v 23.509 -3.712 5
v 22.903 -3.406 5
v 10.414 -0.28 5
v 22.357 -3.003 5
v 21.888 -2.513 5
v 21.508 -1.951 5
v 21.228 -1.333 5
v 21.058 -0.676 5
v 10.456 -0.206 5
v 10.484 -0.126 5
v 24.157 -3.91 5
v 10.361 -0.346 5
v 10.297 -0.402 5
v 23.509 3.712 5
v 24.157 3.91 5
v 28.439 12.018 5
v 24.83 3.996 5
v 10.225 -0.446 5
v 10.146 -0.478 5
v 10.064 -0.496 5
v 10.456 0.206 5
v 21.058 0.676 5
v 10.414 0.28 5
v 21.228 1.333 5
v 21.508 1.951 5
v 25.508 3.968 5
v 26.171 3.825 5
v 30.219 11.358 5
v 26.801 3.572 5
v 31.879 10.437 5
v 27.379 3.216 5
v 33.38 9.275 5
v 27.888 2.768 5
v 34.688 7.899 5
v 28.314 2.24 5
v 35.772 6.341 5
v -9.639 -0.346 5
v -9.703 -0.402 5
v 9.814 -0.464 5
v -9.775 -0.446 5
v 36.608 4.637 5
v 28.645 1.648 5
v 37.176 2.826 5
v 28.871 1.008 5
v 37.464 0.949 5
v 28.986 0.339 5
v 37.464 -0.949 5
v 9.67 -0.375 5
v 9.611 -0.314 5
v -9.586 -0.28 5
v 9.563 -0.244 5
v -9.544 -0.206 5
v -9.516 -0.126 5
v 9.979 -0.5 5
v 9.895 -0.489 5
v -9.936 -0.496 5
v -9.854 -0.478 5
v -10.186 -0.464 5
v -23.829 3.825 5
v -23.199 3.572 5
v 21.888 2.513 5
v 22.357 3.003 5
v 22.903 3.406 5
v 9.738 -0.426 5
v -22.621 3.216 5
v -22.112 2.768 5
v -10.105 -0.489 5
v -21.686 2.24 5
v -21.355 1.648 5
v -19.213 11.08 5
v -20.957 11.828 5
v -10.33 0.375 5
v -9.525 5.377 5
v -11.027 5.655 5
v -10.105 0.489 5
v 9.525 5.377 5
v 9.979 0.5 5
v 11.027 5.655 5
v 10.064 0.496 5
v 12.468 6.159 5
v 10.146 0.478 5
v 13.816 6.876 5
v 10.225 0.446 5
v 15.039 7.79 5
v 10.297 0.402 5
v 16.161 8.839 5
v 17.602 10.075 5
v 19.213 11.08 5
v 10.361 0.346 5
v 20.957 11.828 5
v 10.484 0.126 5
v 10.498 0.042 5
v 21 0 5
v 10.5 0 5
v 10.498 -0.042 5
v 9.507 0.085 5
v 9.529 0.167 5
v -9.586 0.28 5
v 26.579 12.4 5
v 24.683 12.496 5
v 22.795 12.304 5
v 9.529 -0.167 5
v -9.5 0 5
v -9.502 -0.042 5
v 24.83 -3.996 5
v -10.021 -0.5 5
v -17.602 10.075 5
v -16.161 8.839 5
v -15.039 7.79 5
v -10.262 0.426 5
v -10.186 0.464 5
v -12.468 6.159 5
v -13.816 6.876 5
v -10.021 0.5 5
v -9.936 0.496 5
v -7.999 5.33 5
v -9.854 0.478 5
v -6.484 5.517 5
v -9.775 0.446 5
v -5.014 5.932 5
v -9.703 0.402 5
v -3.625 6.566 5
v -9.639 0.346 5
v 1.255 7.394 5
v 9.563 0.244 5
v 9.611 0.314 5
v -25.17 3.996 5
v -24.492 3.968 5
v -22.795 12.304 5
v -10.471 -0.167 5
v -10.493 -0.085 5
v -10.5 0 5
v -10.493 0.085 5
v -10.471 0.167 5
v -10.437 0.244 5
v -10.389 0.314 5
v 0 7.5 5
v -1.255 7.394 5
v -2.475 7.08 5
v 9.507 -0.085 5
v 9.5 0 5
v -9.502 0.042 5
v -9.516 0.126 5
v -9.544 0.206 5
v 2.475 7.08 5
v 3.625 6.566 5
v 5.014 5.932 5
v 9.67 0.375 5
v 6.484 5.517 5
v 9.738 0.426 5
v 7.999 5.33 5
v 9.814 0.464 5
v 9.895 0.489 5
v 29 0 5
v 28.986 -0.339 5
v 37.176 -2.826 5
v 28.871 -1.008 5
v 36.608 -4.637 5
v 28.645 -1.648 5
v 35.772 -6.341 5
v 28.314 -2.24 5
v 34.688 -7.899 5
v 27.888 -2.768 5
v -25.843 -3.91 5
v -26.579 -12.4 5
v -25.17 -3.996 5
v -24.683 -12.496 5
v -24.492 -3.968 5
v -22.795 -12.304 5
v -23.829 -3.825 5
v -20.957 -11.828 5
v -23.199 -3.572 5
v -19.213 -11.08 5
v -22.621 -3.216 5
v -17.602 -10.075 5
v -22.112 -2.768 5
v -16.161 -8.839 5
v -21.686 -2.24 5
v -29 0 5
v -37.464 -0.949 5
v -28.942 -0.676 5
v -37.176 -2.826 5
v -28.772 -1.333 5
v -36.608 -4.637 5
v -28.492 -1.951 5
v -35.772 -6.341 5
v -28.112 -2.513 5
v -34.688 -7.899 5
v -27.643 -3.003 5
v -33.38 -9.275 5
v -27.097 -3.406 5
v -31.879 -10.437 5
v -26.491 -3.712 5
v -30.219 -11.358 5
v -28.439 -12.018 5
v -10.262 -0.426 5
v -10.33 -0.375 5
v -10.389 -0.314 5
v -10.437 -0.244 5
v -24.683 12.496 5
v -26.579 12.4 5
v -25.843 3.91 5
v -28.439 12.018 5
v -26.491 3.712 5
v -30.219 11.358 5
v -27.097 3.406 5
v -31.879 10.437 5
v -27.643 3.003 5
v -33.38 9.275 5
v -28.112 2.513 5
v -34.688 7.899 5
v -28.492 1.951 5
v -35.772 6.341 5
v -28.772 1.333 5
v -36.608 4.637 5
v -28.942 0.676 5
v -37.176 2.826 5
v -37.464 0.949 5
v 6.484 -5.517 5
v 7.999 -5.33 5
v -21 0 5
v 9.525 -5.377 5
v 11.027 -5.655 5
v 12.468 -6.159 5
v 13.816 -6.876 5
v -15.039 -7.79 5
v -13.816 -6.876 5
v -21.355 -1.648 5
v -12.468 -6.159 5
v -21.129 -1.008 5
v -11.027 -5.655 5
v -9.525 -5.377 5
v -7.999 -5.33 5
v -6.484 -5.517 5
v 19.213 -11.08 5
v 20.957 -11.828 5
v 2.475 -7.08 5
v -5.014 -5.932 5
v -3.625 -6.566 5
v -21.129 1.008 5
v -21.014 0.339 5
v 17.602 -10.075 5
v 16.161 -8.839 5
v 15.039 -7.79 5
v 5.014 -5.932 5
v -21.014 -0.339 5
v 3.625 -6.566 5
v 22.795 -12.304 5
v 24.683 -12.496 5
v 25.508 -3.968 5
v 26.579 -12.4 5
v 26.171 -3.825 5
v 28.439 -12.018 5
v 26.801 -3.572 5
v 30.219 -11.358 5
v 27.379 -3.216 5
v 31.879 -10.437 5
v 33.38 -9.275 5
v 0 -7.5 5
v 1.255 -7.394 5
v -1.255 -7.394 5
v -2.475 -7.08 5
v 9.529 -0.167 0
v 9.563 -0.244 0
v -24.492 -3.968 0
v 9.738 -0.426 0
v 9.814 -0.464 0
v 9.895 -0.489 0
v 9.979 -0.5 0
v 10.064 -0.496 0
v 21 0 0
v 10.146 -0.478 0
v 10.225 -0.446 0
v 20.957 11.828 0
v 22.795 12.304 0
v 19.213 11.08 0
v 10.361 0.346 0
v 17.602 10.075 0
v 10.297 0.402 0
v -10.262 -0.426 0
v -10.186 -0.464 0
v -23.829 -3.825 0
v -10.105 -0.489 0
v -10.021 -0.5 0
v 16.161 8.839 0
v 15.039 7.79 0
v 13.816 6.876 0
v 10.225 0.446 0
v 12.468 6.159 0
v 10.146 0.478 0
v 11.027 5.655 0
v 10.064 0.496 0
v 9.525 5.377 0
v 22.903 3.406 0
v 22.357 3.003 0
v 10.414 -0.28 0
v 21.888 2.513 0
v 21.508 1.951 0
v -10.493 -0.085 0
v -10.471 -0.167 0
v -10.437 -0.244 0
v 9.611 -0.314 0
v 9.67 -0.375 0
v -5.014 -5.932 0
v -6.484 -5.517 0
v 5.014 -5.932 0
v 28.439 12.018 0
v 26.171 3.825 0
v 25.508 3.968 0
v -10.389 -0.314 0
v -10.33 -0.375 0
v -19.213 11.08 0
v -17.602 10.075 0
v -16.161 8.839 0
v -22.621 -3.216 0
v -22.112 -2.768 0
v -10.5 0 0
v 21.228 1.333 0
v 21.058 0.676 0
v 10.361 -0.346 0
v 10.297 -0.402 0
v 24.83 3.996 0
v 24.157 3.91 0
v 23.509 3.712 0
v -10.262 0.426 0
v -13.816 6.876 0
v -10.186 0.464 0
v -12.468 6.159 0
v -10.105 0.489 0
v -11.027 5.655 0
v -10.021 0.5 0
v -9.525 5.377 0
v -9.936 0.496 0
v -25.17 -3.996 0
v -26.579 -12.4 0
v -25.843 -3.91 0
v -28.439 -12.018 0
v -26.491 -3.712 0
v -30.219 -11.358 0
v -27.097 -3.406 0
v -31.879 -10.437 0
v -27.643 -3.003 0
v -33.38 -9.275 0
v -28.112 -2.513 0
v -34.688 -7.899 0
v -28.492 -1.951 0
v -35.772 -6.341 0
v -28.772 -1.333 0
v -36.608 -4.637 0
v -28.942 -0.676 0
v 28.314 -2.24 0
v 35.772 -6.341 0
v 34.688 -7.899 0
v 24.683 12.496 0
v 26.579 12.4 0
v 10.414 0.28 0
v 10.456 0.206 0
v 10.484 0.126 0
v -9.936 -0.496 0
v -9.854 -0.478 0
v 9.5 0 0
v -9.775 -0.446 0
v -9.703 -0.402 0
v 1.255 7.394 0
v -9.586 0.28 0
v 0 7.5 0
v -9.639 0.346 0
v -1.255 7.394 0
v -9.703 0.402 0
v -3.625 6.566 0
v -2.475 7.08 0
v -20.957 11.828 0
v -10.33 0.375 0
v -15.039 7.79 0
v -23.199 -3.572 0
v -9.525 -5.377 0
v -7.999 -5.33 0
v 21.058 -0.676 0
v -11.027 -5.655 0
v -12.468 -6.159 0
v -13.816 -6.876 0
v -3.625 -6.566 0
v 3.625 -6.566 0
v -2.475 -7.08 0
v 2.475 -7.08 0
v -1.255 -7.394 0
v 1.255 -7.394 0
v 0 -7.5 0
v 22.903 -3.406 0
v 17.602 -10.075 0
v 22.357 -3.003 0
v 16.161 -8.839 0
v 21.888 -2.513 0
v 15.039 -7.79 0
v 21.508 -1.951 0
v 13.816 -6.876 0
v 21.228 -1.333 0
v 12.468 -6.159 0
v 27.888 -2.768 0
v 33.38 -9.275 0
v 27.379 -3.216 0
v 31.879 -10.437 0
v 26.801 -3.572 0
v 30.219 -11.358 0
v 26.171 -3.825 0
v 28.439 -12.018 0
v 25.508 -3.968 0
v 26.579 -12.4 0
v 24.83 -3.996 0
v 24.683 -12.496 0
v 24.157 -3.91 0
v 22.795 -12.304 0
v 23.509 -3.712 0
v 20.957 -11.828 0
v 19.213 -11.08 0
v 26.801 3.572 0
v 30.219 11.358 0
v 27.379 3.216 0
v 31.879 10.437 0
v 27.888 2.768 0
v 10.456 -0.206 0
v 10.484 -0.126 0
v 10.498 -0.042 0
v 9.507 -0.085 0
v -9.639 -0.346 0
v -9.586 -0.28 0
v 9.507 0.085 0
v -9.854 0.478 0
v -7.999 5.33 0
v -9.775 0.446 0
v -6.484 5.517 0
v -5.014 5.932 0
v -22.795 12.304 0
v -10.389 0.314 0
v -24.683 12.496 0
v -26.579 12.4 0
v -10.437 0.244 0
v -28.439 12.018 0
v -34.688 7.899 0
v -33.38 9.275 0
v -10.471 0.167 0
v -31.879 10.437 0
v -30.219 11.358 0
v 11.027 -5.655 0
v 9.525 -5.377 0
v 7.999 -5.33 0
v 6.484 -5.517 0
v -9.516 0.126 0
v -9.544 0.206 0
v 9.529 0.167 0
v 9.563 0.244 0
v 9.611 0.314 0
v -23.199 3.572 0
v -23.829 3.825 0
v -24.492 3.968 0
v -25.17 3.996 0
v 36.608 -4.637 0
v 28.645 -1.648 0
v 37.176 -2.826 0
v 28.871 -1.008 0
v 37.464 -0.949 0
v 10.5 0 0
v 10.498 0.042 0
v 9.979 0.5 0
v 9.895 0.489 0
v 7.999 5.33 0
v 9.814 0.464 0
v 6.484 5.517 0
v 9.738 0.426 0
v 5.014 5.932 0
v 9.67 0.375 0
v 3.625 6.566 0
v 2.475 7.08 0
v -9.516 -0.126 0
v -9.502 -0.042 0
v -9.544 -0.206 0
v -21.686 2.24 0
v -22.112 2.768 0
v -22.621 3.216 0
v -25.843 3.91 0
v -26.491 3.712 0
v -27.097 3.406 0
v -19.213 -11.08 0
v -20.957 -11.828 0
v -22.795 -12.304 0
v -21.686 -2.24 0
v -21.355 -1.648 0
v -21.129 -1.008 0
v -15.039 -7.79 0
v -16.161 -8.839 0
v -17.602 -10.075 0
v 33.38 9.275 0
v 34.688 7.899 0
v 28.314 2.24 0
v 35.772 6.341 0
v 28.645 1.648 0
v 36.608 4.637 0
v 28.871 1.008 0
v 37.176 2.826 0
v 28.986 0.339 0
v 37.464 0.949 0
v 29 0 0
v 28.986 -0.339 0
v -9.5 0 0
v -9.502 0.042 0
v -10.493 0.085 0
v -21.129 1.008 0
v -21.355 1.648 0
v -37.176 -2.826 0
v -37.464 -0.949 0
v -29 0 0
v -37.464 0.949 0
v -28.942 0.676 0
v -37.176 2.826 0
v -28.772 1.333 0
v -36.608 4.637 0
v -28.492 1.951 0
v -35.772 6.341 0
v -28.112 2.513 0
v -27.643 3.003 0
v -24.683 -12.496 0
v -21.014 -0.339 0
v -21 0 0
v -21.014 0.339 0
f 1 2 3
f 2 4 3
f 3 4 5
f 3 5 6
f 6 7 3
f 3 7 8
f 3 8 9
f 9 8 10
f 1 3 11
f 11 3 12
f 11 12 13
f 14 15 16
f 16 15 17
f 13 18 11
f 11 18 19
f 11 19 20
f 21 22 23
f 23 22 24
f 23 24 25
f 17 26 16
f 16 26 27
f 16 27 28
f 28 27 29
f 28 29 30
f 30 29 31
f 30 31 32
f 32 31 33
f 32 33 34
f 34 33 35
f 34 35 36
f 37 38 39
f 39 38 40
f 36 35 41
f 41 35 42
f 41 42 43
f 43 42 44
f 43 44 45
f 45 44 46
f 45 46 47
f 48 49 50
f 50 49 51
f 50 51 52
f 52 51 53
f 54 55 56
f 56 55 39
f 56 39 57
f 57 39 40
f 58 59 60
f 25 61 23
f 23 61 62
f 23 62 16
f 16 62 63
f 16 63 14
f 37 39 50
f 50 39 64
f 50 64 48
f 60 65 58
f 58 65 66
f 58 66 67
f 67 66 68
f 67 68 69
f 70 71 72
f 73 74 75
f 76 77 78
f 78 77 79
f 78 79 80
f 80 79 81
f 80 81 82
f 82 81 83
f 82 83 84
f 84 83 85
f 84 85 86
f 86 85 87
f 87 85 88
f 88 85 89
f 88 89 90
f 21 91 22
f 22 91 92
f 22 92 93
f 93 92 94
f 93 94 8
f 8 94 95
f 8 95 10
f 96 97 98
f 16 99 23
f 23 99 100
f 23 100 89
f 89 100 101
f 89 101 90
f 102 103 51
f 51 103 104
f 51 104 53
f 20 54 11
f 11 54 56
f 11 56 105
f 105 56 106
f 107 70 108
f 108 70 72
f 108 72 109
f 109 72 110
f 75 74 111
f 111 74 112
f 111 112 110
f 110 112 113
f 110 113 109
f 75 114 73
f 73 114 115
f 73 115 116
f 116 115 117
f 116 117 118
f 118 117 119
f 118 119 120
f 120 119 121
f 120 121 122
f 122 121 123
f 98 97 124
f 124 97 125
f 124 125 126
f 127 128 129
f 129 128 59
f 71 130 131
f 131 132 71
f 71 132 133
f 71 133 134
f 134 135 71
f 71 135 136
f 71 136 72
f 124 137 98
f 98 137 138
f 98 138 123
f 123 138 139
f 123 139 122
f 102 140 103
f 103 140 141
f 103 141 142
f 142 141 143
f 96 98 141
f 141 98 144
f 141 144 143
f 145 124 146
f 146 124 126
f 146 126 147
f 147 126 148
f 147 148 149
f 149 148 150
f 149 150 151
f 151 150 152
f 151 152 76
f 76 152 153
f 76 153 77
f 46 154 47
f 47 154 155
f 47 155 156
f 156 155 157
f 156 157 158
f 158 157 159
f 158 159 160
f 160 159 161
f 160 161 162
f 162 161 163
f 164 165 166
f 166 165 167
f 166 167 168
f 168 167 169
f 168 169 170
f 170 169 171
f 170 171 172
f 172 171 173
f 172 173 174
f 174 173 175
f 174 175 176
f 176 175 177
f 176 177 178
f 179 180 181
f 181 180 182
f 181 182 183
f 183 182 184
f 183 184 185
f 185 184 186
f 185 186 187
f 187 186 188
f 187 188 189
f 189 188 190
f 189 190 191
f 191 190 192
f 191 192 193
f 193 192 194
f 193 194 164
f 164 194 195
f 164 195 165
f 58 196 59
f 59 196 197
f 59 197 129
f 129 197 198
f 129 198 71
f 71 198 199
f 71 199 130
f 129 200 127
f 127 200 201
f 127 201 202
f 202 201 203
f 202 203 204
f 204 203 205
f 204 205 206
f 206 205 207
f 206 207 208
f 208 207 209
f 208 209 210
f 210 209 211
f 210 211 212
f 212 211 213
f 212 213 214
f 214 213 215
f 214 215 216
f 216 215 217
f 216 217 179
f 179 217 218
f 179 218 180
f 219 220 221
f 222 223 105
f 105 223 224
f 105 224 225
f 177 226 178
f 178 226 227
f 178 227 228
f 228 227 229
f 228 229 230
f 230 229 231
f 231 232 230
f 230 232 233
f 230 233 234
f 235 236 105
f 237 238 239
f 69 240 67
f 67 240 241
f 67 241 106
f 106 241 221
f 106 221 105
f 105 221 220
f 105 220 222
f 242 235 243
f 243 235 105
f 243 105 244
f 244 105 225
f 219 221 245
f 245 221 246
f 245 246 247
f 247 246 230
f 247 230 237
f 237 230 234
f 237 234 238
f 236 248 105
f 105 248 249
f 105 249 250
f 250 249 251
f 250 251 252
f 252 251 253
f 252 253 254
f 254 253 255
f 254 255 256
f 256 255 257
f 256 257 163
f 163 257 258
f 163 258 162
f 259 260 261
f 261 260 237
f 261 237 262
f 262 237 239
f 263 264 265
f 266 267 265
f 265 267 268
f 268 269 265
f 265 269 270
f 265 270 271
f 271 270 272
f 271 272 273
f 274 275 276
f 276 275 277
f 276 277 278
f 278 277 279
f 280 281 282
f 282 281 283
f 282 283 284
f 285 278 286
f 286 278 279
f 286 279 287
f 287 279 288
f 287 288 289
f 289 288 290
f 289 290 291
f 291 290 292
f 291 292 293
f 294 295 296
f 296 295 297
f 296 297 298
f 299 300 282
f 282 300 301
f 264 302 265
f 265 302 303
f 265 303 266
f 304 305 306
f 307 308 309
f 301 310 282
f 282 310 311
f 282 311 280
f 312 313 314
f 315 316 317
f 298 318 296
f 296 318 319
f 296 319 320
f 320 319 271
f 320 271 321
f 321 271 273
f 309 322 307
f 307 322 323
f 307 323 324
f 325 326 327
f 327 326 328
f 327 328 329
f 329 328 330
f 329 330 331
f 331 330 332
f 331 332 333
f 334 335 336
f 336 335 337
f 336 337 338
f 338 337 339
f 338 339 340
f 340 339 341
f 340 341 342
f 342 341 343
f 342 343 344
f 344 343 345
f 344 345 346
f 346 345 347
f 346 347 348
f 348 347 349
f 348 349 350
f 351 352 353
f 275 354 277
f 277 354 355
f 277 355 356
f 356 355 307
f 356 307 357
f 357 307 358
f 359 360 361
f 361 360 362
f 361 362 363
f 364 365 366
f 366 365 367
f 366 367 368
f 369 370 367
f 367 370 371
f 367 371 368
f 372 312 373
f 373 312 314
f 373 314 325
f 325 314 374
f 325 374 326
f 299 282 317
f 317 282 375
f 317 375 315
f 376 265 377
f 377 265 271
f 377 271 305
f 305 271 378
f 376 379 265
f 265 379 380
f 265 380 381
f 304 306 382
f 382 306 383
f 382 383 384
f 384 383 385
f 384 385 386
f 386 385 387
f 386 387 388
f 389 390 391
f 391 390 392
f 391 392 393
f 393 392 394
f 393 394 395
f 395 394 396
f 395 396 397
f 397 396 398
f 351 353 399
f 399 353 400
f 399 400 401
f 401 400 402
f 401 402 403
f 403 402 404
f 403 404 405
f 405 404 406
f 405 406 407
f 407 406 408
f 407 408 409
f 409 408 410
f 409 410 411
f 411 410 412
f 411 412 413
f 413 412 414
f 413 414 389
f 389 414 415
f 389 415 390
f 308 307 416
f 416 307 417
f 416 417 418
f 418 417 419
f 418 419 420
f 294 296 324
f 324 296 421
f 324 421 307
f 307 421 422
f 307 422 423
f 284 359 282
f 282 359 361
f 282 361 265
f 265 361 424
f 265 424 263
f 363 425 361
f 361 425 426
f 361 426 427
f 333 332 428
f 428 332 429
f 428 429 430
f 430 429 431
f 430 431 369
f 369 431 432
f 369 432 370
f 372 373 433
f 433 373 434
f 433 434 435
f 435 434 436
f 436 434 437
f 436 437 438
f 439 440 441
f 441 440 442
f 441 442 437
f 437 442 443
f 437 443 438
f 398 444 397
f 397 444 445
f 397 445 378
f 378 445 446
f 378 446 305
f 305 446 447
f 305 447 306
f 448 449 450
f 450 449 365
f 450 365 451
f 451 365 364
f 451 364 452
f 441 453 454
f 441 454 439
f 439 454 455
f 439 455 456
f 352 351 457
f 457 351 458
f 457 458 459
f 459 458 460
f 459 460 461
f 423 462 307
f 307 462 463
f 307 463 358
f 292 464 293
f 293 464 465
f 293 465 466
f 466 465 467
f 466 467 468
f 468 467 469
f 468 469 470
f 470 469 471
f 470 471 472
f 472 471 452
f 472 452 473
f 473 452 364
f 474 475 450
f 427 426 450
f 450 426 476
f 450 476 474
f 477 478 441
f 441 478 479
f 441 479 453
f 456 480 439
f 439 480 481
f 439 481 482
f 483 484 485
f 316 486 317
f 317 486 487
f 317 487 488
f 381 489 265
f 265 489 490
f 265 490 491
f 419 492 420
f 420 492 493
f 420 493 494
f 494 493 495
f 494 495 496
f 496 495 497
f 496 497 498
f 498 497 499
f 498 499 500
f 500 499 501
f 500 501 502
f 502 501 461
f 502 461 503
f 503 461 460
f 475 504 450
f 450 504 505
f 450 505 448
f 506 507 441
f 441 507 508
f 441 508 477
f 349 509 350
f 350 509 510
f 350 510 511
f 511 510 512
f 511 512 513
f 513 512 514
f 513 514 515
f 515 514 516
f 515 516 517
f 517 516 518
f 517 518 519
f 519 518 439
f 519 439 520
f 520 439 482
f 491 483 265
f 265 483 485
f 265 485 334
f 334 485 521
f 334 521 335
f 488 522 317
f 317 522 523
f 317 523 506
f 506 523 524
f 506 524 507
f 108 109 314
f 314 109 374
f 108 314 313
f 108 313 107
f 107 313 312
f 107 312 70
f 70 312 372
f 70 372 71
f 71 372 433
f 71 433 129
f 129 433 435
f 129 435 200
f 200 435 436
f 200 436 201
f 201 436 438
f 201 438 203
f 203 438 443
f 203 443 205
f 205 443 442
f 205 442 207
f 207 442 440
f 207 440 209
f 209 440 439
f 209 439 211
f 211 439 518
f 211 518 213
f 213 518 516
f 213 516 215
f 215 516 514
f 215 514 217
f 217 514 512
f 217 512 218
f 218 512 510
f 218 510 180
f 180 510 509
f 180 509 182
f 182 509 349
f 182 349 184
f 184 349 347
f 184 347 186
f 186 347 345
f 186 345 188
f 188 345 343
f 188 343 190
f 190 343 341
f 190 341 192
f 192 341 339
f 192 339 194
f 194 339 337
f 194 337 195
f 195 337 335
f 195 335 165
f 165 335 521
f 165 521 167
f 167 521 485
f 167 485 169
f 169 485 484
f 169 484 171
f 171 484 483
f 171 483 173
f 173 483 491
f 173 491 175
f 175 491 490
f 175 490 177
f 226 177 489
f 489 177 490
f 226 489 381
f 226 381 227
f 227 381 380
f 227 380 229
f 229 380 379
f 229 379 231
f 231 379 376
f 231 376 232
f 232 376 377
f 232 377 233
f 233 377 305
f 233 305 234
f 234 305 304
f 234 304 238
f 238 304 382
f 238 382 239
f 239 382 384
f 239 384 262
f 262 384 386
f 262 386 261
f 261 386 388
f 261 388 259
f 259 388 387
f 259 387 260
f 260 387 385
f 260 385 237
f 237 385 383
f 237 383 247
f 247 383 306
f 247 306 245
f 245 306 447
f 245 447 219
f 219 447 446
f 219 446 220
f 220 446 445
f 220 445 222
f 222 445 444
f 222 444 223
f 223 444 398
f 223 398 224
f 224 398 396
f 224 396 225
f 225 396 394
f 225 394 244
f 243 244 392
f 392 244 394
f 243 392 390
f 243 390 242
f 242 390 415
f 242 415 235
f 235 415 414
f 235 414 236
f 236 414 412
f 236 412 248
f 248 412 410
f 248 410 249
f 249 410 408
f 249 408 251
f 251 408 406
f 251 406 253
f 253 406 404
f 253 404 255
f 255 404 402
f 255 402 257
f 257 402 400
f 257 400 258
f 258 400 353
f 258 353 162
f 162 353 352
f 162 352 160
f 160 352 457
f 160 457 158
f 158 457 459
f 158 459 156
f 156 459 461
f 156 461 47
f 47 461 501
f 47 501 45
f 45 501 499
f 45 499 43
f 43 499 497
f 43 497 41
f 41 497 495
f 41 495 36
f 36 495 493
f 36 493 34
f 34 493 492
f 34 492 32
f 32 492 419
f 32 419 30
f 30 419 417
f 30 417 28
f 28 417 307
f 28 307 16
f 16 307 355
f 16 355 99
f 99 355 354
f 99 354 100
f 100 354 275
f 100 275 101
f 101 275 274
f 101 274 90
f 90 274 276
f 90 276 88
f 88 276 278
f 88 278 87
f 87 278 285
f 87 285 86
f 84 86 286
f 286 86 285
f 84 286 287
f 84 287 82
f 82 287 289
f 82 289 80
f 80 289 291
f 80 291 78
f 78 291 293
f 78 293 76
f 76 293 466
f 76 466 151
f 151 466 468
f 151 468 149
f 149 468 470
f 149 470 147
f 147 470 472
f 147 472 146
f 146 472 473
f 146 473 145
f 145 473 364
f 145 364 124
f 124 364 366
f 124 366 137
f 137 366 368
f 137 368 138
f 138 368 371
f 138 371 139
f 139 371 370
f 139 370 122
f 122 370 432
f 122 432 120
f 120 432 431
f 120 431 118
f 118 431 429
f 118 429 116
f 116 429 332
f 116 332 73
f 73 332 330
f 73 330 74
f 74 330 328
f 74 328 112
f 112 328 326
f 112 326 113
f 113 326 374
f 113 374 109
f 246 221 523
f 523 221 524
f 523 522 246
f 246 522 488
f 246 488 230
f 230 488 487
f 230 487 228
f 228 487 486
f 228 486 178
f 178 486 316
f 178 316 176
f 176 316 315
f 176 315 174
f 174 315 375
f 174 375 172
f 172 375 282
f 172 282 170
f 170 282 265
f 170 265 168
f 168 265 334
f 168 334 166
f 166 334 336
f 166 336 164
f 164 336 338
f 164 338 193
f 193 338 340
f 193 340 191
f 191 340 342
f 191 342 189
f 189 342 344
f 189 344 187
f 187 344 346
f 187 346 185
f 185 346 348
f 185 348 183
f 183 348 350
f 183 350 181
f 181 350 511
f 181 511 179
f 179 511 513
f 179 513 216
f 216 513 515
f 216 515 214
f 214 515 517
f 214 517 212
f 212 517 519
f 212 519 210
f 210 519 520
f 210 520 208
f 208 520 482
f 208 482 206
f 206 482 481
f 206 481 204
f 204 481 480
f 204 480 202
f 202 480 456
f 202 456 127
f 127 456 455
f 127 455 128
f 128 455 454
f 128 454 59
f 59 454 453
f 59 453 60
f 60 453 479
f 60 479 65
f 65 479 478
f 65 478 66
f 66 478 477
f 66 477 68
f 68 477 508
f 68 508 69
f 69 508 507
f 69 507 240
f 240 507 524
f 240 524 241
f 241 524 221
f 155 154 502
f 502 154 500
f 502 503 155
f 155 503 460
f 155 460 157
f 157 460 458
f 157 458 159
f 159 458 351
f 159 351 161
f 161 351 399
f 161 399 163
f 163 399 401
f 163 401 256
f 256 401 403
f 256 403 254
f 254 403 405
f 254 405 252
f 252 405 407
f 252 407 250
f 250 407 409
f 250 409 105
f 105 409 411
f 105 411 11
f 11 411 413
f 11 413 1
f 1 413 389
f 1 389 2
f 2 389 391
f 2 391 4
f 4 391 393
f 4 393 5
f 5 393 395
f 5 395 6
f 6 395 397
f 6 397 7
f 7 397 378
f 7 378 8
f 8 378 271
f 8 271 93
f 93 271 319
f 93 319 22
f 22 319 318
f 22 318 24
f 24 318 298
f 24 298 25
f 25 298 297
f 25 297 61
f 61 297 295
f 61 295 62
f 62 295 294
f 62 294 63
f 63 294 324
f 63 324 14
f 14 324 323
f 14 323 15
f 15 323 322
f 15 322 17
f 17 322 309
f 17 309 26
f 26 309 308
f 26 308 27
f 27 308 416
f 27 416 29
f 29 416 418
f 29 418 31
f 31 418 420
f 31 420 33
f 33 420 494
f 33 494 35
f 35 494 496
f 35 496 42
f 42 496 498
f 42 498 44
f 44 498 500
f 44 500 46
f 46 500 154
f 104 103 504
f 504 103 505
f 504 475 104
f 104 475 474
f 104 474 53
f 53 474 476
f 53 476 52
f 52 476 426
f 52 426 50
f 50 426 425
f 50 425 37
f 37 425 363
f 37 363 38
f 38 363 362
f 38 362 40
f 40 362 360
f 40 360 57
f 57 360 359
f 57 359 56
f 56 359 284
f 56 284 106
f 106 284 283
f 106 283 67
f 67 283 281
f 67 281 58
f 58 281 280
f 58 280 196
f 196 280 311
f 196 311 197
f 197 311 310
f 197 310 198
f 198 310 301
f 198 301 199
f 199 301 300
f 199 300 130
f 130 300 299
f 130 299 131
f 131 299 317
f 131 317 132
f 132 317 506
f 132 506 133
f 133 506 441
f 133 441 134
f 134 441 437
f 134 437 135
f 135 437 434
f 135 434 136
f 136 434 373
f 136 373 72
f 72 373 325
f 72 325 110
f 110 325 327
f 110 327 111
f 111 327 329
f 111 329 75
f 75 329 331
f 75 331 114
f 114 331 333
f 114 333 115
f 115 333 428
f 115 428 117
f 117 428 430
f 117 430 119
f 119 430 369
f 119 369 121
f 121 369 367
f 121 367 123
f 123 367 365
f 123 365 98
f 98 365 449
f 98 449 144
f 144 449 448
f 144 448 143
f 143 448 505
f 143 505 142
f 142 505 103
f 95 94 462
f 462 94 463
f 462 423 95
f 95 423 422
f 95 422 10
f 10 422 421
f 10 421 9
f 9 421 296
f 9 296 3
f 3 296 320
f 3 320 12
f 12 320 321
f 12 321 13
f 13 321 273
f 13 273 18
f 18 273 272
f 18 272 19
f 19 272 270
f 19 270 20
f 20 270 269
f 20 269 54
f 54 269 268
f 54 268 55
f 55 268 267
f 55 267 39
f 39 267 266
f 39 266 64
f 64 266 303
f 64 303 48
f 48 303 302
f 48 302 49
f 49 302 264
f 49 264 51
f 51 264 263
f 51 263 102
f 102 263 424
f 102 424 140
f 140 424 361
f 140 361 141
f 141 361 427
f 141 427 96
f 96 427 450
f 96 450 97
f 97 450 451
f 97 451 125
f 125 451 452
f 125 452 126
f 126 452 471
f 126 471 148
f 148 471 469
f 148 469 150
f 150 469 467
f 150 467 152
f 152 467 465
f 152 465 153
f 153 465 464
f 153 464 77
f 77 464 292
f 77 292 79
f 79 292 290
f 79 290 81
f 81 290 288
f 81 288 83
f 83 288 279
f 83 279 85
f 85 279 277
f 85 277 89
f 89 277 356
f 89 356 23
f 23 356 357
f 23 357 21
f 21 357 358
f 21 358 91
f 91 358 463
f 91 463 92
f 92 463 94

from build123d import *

# Parameters (mm, degrees)
SKETCH_1_R      = 4
SKETCH_1_R_2    = 0.5
EXTRUDE_1_DEPTH = 5


with BuildPart() as part:
    # 草圖1 → 填料-伸長1 (new body)
    with BuildSketch(Plane.XY):
        with BuildLine():
            ThreePointArc((-16.161165235, 8.838834765), (-37.5, 0), (-16.161165235, -8.838834765))
            ThreePointArc((-16.161165235, -8.838834765), (-15.608913833, -8.304841047), (-15.039028639, -7.789708279))
            ThreePointArc((-15.039028639, -7.789708279), (-9.525276207, -5.376821949), (-3.625257572, -6.56563078))
            ThreePointArc((-3.625257572, -6.56563078), (0, -7.5), (3.625257572, -6.56563078))
            ThreePointArc((3.625257572, -6.56563078), (9.525276207, -5.376821949), (15.039028639, -7.789708279))
            ThreePointArc((15.039028639, -7.789708279), (15.608913833, -8.304841047), (16.161165235, -8.838834765))
            ThreePointArc((16.161165235, -8.838834765), (37.5, 0), (16.161165235, 8.838834765))
            ThreePointArc((16.161165235, 8.838834765), (15.608913833, 8.304841047), (15.039028639, 7.789708279))
            ThreePointArc((15.039028639, 7.789708279), (9.525276207, 5.376821949), (3.625257572, 6.56563078))
            ThreePointArc((3.625257572, 6.56563078), (0, 7.5), (-3.625257572, 6.56563078))
            ThreePointArc((-3.625257572, 6.56563078), (-9.525276207, 5.376821949), (-15.039028639, 7.789708279))
            ThreePointArc((-15.039028639, 7.789708279), (-15.608913833, 8.304841047), (-16.161165235, 8.838834765))
        make_face()
        with Locations((-25, 0)):
            Circle(SKETCH_1_R, mode=Mode.SUBTRACT)
        with Locations((25, 0)):
            Circle(SKETCH_1_R, mode=Mode.SUBTRACT)
        with Locations((-10, 0)):
            Circle(SKETCH_1_R_2, mode=Mode.SUBTRACT)
        with Locations((10, 0)):
            Circle(SKETCH_1_R_2, mode=Mode.SUBTRACT)
    extrude(amount=EXTRUDE_1_DEPTH)


solid = part.part
